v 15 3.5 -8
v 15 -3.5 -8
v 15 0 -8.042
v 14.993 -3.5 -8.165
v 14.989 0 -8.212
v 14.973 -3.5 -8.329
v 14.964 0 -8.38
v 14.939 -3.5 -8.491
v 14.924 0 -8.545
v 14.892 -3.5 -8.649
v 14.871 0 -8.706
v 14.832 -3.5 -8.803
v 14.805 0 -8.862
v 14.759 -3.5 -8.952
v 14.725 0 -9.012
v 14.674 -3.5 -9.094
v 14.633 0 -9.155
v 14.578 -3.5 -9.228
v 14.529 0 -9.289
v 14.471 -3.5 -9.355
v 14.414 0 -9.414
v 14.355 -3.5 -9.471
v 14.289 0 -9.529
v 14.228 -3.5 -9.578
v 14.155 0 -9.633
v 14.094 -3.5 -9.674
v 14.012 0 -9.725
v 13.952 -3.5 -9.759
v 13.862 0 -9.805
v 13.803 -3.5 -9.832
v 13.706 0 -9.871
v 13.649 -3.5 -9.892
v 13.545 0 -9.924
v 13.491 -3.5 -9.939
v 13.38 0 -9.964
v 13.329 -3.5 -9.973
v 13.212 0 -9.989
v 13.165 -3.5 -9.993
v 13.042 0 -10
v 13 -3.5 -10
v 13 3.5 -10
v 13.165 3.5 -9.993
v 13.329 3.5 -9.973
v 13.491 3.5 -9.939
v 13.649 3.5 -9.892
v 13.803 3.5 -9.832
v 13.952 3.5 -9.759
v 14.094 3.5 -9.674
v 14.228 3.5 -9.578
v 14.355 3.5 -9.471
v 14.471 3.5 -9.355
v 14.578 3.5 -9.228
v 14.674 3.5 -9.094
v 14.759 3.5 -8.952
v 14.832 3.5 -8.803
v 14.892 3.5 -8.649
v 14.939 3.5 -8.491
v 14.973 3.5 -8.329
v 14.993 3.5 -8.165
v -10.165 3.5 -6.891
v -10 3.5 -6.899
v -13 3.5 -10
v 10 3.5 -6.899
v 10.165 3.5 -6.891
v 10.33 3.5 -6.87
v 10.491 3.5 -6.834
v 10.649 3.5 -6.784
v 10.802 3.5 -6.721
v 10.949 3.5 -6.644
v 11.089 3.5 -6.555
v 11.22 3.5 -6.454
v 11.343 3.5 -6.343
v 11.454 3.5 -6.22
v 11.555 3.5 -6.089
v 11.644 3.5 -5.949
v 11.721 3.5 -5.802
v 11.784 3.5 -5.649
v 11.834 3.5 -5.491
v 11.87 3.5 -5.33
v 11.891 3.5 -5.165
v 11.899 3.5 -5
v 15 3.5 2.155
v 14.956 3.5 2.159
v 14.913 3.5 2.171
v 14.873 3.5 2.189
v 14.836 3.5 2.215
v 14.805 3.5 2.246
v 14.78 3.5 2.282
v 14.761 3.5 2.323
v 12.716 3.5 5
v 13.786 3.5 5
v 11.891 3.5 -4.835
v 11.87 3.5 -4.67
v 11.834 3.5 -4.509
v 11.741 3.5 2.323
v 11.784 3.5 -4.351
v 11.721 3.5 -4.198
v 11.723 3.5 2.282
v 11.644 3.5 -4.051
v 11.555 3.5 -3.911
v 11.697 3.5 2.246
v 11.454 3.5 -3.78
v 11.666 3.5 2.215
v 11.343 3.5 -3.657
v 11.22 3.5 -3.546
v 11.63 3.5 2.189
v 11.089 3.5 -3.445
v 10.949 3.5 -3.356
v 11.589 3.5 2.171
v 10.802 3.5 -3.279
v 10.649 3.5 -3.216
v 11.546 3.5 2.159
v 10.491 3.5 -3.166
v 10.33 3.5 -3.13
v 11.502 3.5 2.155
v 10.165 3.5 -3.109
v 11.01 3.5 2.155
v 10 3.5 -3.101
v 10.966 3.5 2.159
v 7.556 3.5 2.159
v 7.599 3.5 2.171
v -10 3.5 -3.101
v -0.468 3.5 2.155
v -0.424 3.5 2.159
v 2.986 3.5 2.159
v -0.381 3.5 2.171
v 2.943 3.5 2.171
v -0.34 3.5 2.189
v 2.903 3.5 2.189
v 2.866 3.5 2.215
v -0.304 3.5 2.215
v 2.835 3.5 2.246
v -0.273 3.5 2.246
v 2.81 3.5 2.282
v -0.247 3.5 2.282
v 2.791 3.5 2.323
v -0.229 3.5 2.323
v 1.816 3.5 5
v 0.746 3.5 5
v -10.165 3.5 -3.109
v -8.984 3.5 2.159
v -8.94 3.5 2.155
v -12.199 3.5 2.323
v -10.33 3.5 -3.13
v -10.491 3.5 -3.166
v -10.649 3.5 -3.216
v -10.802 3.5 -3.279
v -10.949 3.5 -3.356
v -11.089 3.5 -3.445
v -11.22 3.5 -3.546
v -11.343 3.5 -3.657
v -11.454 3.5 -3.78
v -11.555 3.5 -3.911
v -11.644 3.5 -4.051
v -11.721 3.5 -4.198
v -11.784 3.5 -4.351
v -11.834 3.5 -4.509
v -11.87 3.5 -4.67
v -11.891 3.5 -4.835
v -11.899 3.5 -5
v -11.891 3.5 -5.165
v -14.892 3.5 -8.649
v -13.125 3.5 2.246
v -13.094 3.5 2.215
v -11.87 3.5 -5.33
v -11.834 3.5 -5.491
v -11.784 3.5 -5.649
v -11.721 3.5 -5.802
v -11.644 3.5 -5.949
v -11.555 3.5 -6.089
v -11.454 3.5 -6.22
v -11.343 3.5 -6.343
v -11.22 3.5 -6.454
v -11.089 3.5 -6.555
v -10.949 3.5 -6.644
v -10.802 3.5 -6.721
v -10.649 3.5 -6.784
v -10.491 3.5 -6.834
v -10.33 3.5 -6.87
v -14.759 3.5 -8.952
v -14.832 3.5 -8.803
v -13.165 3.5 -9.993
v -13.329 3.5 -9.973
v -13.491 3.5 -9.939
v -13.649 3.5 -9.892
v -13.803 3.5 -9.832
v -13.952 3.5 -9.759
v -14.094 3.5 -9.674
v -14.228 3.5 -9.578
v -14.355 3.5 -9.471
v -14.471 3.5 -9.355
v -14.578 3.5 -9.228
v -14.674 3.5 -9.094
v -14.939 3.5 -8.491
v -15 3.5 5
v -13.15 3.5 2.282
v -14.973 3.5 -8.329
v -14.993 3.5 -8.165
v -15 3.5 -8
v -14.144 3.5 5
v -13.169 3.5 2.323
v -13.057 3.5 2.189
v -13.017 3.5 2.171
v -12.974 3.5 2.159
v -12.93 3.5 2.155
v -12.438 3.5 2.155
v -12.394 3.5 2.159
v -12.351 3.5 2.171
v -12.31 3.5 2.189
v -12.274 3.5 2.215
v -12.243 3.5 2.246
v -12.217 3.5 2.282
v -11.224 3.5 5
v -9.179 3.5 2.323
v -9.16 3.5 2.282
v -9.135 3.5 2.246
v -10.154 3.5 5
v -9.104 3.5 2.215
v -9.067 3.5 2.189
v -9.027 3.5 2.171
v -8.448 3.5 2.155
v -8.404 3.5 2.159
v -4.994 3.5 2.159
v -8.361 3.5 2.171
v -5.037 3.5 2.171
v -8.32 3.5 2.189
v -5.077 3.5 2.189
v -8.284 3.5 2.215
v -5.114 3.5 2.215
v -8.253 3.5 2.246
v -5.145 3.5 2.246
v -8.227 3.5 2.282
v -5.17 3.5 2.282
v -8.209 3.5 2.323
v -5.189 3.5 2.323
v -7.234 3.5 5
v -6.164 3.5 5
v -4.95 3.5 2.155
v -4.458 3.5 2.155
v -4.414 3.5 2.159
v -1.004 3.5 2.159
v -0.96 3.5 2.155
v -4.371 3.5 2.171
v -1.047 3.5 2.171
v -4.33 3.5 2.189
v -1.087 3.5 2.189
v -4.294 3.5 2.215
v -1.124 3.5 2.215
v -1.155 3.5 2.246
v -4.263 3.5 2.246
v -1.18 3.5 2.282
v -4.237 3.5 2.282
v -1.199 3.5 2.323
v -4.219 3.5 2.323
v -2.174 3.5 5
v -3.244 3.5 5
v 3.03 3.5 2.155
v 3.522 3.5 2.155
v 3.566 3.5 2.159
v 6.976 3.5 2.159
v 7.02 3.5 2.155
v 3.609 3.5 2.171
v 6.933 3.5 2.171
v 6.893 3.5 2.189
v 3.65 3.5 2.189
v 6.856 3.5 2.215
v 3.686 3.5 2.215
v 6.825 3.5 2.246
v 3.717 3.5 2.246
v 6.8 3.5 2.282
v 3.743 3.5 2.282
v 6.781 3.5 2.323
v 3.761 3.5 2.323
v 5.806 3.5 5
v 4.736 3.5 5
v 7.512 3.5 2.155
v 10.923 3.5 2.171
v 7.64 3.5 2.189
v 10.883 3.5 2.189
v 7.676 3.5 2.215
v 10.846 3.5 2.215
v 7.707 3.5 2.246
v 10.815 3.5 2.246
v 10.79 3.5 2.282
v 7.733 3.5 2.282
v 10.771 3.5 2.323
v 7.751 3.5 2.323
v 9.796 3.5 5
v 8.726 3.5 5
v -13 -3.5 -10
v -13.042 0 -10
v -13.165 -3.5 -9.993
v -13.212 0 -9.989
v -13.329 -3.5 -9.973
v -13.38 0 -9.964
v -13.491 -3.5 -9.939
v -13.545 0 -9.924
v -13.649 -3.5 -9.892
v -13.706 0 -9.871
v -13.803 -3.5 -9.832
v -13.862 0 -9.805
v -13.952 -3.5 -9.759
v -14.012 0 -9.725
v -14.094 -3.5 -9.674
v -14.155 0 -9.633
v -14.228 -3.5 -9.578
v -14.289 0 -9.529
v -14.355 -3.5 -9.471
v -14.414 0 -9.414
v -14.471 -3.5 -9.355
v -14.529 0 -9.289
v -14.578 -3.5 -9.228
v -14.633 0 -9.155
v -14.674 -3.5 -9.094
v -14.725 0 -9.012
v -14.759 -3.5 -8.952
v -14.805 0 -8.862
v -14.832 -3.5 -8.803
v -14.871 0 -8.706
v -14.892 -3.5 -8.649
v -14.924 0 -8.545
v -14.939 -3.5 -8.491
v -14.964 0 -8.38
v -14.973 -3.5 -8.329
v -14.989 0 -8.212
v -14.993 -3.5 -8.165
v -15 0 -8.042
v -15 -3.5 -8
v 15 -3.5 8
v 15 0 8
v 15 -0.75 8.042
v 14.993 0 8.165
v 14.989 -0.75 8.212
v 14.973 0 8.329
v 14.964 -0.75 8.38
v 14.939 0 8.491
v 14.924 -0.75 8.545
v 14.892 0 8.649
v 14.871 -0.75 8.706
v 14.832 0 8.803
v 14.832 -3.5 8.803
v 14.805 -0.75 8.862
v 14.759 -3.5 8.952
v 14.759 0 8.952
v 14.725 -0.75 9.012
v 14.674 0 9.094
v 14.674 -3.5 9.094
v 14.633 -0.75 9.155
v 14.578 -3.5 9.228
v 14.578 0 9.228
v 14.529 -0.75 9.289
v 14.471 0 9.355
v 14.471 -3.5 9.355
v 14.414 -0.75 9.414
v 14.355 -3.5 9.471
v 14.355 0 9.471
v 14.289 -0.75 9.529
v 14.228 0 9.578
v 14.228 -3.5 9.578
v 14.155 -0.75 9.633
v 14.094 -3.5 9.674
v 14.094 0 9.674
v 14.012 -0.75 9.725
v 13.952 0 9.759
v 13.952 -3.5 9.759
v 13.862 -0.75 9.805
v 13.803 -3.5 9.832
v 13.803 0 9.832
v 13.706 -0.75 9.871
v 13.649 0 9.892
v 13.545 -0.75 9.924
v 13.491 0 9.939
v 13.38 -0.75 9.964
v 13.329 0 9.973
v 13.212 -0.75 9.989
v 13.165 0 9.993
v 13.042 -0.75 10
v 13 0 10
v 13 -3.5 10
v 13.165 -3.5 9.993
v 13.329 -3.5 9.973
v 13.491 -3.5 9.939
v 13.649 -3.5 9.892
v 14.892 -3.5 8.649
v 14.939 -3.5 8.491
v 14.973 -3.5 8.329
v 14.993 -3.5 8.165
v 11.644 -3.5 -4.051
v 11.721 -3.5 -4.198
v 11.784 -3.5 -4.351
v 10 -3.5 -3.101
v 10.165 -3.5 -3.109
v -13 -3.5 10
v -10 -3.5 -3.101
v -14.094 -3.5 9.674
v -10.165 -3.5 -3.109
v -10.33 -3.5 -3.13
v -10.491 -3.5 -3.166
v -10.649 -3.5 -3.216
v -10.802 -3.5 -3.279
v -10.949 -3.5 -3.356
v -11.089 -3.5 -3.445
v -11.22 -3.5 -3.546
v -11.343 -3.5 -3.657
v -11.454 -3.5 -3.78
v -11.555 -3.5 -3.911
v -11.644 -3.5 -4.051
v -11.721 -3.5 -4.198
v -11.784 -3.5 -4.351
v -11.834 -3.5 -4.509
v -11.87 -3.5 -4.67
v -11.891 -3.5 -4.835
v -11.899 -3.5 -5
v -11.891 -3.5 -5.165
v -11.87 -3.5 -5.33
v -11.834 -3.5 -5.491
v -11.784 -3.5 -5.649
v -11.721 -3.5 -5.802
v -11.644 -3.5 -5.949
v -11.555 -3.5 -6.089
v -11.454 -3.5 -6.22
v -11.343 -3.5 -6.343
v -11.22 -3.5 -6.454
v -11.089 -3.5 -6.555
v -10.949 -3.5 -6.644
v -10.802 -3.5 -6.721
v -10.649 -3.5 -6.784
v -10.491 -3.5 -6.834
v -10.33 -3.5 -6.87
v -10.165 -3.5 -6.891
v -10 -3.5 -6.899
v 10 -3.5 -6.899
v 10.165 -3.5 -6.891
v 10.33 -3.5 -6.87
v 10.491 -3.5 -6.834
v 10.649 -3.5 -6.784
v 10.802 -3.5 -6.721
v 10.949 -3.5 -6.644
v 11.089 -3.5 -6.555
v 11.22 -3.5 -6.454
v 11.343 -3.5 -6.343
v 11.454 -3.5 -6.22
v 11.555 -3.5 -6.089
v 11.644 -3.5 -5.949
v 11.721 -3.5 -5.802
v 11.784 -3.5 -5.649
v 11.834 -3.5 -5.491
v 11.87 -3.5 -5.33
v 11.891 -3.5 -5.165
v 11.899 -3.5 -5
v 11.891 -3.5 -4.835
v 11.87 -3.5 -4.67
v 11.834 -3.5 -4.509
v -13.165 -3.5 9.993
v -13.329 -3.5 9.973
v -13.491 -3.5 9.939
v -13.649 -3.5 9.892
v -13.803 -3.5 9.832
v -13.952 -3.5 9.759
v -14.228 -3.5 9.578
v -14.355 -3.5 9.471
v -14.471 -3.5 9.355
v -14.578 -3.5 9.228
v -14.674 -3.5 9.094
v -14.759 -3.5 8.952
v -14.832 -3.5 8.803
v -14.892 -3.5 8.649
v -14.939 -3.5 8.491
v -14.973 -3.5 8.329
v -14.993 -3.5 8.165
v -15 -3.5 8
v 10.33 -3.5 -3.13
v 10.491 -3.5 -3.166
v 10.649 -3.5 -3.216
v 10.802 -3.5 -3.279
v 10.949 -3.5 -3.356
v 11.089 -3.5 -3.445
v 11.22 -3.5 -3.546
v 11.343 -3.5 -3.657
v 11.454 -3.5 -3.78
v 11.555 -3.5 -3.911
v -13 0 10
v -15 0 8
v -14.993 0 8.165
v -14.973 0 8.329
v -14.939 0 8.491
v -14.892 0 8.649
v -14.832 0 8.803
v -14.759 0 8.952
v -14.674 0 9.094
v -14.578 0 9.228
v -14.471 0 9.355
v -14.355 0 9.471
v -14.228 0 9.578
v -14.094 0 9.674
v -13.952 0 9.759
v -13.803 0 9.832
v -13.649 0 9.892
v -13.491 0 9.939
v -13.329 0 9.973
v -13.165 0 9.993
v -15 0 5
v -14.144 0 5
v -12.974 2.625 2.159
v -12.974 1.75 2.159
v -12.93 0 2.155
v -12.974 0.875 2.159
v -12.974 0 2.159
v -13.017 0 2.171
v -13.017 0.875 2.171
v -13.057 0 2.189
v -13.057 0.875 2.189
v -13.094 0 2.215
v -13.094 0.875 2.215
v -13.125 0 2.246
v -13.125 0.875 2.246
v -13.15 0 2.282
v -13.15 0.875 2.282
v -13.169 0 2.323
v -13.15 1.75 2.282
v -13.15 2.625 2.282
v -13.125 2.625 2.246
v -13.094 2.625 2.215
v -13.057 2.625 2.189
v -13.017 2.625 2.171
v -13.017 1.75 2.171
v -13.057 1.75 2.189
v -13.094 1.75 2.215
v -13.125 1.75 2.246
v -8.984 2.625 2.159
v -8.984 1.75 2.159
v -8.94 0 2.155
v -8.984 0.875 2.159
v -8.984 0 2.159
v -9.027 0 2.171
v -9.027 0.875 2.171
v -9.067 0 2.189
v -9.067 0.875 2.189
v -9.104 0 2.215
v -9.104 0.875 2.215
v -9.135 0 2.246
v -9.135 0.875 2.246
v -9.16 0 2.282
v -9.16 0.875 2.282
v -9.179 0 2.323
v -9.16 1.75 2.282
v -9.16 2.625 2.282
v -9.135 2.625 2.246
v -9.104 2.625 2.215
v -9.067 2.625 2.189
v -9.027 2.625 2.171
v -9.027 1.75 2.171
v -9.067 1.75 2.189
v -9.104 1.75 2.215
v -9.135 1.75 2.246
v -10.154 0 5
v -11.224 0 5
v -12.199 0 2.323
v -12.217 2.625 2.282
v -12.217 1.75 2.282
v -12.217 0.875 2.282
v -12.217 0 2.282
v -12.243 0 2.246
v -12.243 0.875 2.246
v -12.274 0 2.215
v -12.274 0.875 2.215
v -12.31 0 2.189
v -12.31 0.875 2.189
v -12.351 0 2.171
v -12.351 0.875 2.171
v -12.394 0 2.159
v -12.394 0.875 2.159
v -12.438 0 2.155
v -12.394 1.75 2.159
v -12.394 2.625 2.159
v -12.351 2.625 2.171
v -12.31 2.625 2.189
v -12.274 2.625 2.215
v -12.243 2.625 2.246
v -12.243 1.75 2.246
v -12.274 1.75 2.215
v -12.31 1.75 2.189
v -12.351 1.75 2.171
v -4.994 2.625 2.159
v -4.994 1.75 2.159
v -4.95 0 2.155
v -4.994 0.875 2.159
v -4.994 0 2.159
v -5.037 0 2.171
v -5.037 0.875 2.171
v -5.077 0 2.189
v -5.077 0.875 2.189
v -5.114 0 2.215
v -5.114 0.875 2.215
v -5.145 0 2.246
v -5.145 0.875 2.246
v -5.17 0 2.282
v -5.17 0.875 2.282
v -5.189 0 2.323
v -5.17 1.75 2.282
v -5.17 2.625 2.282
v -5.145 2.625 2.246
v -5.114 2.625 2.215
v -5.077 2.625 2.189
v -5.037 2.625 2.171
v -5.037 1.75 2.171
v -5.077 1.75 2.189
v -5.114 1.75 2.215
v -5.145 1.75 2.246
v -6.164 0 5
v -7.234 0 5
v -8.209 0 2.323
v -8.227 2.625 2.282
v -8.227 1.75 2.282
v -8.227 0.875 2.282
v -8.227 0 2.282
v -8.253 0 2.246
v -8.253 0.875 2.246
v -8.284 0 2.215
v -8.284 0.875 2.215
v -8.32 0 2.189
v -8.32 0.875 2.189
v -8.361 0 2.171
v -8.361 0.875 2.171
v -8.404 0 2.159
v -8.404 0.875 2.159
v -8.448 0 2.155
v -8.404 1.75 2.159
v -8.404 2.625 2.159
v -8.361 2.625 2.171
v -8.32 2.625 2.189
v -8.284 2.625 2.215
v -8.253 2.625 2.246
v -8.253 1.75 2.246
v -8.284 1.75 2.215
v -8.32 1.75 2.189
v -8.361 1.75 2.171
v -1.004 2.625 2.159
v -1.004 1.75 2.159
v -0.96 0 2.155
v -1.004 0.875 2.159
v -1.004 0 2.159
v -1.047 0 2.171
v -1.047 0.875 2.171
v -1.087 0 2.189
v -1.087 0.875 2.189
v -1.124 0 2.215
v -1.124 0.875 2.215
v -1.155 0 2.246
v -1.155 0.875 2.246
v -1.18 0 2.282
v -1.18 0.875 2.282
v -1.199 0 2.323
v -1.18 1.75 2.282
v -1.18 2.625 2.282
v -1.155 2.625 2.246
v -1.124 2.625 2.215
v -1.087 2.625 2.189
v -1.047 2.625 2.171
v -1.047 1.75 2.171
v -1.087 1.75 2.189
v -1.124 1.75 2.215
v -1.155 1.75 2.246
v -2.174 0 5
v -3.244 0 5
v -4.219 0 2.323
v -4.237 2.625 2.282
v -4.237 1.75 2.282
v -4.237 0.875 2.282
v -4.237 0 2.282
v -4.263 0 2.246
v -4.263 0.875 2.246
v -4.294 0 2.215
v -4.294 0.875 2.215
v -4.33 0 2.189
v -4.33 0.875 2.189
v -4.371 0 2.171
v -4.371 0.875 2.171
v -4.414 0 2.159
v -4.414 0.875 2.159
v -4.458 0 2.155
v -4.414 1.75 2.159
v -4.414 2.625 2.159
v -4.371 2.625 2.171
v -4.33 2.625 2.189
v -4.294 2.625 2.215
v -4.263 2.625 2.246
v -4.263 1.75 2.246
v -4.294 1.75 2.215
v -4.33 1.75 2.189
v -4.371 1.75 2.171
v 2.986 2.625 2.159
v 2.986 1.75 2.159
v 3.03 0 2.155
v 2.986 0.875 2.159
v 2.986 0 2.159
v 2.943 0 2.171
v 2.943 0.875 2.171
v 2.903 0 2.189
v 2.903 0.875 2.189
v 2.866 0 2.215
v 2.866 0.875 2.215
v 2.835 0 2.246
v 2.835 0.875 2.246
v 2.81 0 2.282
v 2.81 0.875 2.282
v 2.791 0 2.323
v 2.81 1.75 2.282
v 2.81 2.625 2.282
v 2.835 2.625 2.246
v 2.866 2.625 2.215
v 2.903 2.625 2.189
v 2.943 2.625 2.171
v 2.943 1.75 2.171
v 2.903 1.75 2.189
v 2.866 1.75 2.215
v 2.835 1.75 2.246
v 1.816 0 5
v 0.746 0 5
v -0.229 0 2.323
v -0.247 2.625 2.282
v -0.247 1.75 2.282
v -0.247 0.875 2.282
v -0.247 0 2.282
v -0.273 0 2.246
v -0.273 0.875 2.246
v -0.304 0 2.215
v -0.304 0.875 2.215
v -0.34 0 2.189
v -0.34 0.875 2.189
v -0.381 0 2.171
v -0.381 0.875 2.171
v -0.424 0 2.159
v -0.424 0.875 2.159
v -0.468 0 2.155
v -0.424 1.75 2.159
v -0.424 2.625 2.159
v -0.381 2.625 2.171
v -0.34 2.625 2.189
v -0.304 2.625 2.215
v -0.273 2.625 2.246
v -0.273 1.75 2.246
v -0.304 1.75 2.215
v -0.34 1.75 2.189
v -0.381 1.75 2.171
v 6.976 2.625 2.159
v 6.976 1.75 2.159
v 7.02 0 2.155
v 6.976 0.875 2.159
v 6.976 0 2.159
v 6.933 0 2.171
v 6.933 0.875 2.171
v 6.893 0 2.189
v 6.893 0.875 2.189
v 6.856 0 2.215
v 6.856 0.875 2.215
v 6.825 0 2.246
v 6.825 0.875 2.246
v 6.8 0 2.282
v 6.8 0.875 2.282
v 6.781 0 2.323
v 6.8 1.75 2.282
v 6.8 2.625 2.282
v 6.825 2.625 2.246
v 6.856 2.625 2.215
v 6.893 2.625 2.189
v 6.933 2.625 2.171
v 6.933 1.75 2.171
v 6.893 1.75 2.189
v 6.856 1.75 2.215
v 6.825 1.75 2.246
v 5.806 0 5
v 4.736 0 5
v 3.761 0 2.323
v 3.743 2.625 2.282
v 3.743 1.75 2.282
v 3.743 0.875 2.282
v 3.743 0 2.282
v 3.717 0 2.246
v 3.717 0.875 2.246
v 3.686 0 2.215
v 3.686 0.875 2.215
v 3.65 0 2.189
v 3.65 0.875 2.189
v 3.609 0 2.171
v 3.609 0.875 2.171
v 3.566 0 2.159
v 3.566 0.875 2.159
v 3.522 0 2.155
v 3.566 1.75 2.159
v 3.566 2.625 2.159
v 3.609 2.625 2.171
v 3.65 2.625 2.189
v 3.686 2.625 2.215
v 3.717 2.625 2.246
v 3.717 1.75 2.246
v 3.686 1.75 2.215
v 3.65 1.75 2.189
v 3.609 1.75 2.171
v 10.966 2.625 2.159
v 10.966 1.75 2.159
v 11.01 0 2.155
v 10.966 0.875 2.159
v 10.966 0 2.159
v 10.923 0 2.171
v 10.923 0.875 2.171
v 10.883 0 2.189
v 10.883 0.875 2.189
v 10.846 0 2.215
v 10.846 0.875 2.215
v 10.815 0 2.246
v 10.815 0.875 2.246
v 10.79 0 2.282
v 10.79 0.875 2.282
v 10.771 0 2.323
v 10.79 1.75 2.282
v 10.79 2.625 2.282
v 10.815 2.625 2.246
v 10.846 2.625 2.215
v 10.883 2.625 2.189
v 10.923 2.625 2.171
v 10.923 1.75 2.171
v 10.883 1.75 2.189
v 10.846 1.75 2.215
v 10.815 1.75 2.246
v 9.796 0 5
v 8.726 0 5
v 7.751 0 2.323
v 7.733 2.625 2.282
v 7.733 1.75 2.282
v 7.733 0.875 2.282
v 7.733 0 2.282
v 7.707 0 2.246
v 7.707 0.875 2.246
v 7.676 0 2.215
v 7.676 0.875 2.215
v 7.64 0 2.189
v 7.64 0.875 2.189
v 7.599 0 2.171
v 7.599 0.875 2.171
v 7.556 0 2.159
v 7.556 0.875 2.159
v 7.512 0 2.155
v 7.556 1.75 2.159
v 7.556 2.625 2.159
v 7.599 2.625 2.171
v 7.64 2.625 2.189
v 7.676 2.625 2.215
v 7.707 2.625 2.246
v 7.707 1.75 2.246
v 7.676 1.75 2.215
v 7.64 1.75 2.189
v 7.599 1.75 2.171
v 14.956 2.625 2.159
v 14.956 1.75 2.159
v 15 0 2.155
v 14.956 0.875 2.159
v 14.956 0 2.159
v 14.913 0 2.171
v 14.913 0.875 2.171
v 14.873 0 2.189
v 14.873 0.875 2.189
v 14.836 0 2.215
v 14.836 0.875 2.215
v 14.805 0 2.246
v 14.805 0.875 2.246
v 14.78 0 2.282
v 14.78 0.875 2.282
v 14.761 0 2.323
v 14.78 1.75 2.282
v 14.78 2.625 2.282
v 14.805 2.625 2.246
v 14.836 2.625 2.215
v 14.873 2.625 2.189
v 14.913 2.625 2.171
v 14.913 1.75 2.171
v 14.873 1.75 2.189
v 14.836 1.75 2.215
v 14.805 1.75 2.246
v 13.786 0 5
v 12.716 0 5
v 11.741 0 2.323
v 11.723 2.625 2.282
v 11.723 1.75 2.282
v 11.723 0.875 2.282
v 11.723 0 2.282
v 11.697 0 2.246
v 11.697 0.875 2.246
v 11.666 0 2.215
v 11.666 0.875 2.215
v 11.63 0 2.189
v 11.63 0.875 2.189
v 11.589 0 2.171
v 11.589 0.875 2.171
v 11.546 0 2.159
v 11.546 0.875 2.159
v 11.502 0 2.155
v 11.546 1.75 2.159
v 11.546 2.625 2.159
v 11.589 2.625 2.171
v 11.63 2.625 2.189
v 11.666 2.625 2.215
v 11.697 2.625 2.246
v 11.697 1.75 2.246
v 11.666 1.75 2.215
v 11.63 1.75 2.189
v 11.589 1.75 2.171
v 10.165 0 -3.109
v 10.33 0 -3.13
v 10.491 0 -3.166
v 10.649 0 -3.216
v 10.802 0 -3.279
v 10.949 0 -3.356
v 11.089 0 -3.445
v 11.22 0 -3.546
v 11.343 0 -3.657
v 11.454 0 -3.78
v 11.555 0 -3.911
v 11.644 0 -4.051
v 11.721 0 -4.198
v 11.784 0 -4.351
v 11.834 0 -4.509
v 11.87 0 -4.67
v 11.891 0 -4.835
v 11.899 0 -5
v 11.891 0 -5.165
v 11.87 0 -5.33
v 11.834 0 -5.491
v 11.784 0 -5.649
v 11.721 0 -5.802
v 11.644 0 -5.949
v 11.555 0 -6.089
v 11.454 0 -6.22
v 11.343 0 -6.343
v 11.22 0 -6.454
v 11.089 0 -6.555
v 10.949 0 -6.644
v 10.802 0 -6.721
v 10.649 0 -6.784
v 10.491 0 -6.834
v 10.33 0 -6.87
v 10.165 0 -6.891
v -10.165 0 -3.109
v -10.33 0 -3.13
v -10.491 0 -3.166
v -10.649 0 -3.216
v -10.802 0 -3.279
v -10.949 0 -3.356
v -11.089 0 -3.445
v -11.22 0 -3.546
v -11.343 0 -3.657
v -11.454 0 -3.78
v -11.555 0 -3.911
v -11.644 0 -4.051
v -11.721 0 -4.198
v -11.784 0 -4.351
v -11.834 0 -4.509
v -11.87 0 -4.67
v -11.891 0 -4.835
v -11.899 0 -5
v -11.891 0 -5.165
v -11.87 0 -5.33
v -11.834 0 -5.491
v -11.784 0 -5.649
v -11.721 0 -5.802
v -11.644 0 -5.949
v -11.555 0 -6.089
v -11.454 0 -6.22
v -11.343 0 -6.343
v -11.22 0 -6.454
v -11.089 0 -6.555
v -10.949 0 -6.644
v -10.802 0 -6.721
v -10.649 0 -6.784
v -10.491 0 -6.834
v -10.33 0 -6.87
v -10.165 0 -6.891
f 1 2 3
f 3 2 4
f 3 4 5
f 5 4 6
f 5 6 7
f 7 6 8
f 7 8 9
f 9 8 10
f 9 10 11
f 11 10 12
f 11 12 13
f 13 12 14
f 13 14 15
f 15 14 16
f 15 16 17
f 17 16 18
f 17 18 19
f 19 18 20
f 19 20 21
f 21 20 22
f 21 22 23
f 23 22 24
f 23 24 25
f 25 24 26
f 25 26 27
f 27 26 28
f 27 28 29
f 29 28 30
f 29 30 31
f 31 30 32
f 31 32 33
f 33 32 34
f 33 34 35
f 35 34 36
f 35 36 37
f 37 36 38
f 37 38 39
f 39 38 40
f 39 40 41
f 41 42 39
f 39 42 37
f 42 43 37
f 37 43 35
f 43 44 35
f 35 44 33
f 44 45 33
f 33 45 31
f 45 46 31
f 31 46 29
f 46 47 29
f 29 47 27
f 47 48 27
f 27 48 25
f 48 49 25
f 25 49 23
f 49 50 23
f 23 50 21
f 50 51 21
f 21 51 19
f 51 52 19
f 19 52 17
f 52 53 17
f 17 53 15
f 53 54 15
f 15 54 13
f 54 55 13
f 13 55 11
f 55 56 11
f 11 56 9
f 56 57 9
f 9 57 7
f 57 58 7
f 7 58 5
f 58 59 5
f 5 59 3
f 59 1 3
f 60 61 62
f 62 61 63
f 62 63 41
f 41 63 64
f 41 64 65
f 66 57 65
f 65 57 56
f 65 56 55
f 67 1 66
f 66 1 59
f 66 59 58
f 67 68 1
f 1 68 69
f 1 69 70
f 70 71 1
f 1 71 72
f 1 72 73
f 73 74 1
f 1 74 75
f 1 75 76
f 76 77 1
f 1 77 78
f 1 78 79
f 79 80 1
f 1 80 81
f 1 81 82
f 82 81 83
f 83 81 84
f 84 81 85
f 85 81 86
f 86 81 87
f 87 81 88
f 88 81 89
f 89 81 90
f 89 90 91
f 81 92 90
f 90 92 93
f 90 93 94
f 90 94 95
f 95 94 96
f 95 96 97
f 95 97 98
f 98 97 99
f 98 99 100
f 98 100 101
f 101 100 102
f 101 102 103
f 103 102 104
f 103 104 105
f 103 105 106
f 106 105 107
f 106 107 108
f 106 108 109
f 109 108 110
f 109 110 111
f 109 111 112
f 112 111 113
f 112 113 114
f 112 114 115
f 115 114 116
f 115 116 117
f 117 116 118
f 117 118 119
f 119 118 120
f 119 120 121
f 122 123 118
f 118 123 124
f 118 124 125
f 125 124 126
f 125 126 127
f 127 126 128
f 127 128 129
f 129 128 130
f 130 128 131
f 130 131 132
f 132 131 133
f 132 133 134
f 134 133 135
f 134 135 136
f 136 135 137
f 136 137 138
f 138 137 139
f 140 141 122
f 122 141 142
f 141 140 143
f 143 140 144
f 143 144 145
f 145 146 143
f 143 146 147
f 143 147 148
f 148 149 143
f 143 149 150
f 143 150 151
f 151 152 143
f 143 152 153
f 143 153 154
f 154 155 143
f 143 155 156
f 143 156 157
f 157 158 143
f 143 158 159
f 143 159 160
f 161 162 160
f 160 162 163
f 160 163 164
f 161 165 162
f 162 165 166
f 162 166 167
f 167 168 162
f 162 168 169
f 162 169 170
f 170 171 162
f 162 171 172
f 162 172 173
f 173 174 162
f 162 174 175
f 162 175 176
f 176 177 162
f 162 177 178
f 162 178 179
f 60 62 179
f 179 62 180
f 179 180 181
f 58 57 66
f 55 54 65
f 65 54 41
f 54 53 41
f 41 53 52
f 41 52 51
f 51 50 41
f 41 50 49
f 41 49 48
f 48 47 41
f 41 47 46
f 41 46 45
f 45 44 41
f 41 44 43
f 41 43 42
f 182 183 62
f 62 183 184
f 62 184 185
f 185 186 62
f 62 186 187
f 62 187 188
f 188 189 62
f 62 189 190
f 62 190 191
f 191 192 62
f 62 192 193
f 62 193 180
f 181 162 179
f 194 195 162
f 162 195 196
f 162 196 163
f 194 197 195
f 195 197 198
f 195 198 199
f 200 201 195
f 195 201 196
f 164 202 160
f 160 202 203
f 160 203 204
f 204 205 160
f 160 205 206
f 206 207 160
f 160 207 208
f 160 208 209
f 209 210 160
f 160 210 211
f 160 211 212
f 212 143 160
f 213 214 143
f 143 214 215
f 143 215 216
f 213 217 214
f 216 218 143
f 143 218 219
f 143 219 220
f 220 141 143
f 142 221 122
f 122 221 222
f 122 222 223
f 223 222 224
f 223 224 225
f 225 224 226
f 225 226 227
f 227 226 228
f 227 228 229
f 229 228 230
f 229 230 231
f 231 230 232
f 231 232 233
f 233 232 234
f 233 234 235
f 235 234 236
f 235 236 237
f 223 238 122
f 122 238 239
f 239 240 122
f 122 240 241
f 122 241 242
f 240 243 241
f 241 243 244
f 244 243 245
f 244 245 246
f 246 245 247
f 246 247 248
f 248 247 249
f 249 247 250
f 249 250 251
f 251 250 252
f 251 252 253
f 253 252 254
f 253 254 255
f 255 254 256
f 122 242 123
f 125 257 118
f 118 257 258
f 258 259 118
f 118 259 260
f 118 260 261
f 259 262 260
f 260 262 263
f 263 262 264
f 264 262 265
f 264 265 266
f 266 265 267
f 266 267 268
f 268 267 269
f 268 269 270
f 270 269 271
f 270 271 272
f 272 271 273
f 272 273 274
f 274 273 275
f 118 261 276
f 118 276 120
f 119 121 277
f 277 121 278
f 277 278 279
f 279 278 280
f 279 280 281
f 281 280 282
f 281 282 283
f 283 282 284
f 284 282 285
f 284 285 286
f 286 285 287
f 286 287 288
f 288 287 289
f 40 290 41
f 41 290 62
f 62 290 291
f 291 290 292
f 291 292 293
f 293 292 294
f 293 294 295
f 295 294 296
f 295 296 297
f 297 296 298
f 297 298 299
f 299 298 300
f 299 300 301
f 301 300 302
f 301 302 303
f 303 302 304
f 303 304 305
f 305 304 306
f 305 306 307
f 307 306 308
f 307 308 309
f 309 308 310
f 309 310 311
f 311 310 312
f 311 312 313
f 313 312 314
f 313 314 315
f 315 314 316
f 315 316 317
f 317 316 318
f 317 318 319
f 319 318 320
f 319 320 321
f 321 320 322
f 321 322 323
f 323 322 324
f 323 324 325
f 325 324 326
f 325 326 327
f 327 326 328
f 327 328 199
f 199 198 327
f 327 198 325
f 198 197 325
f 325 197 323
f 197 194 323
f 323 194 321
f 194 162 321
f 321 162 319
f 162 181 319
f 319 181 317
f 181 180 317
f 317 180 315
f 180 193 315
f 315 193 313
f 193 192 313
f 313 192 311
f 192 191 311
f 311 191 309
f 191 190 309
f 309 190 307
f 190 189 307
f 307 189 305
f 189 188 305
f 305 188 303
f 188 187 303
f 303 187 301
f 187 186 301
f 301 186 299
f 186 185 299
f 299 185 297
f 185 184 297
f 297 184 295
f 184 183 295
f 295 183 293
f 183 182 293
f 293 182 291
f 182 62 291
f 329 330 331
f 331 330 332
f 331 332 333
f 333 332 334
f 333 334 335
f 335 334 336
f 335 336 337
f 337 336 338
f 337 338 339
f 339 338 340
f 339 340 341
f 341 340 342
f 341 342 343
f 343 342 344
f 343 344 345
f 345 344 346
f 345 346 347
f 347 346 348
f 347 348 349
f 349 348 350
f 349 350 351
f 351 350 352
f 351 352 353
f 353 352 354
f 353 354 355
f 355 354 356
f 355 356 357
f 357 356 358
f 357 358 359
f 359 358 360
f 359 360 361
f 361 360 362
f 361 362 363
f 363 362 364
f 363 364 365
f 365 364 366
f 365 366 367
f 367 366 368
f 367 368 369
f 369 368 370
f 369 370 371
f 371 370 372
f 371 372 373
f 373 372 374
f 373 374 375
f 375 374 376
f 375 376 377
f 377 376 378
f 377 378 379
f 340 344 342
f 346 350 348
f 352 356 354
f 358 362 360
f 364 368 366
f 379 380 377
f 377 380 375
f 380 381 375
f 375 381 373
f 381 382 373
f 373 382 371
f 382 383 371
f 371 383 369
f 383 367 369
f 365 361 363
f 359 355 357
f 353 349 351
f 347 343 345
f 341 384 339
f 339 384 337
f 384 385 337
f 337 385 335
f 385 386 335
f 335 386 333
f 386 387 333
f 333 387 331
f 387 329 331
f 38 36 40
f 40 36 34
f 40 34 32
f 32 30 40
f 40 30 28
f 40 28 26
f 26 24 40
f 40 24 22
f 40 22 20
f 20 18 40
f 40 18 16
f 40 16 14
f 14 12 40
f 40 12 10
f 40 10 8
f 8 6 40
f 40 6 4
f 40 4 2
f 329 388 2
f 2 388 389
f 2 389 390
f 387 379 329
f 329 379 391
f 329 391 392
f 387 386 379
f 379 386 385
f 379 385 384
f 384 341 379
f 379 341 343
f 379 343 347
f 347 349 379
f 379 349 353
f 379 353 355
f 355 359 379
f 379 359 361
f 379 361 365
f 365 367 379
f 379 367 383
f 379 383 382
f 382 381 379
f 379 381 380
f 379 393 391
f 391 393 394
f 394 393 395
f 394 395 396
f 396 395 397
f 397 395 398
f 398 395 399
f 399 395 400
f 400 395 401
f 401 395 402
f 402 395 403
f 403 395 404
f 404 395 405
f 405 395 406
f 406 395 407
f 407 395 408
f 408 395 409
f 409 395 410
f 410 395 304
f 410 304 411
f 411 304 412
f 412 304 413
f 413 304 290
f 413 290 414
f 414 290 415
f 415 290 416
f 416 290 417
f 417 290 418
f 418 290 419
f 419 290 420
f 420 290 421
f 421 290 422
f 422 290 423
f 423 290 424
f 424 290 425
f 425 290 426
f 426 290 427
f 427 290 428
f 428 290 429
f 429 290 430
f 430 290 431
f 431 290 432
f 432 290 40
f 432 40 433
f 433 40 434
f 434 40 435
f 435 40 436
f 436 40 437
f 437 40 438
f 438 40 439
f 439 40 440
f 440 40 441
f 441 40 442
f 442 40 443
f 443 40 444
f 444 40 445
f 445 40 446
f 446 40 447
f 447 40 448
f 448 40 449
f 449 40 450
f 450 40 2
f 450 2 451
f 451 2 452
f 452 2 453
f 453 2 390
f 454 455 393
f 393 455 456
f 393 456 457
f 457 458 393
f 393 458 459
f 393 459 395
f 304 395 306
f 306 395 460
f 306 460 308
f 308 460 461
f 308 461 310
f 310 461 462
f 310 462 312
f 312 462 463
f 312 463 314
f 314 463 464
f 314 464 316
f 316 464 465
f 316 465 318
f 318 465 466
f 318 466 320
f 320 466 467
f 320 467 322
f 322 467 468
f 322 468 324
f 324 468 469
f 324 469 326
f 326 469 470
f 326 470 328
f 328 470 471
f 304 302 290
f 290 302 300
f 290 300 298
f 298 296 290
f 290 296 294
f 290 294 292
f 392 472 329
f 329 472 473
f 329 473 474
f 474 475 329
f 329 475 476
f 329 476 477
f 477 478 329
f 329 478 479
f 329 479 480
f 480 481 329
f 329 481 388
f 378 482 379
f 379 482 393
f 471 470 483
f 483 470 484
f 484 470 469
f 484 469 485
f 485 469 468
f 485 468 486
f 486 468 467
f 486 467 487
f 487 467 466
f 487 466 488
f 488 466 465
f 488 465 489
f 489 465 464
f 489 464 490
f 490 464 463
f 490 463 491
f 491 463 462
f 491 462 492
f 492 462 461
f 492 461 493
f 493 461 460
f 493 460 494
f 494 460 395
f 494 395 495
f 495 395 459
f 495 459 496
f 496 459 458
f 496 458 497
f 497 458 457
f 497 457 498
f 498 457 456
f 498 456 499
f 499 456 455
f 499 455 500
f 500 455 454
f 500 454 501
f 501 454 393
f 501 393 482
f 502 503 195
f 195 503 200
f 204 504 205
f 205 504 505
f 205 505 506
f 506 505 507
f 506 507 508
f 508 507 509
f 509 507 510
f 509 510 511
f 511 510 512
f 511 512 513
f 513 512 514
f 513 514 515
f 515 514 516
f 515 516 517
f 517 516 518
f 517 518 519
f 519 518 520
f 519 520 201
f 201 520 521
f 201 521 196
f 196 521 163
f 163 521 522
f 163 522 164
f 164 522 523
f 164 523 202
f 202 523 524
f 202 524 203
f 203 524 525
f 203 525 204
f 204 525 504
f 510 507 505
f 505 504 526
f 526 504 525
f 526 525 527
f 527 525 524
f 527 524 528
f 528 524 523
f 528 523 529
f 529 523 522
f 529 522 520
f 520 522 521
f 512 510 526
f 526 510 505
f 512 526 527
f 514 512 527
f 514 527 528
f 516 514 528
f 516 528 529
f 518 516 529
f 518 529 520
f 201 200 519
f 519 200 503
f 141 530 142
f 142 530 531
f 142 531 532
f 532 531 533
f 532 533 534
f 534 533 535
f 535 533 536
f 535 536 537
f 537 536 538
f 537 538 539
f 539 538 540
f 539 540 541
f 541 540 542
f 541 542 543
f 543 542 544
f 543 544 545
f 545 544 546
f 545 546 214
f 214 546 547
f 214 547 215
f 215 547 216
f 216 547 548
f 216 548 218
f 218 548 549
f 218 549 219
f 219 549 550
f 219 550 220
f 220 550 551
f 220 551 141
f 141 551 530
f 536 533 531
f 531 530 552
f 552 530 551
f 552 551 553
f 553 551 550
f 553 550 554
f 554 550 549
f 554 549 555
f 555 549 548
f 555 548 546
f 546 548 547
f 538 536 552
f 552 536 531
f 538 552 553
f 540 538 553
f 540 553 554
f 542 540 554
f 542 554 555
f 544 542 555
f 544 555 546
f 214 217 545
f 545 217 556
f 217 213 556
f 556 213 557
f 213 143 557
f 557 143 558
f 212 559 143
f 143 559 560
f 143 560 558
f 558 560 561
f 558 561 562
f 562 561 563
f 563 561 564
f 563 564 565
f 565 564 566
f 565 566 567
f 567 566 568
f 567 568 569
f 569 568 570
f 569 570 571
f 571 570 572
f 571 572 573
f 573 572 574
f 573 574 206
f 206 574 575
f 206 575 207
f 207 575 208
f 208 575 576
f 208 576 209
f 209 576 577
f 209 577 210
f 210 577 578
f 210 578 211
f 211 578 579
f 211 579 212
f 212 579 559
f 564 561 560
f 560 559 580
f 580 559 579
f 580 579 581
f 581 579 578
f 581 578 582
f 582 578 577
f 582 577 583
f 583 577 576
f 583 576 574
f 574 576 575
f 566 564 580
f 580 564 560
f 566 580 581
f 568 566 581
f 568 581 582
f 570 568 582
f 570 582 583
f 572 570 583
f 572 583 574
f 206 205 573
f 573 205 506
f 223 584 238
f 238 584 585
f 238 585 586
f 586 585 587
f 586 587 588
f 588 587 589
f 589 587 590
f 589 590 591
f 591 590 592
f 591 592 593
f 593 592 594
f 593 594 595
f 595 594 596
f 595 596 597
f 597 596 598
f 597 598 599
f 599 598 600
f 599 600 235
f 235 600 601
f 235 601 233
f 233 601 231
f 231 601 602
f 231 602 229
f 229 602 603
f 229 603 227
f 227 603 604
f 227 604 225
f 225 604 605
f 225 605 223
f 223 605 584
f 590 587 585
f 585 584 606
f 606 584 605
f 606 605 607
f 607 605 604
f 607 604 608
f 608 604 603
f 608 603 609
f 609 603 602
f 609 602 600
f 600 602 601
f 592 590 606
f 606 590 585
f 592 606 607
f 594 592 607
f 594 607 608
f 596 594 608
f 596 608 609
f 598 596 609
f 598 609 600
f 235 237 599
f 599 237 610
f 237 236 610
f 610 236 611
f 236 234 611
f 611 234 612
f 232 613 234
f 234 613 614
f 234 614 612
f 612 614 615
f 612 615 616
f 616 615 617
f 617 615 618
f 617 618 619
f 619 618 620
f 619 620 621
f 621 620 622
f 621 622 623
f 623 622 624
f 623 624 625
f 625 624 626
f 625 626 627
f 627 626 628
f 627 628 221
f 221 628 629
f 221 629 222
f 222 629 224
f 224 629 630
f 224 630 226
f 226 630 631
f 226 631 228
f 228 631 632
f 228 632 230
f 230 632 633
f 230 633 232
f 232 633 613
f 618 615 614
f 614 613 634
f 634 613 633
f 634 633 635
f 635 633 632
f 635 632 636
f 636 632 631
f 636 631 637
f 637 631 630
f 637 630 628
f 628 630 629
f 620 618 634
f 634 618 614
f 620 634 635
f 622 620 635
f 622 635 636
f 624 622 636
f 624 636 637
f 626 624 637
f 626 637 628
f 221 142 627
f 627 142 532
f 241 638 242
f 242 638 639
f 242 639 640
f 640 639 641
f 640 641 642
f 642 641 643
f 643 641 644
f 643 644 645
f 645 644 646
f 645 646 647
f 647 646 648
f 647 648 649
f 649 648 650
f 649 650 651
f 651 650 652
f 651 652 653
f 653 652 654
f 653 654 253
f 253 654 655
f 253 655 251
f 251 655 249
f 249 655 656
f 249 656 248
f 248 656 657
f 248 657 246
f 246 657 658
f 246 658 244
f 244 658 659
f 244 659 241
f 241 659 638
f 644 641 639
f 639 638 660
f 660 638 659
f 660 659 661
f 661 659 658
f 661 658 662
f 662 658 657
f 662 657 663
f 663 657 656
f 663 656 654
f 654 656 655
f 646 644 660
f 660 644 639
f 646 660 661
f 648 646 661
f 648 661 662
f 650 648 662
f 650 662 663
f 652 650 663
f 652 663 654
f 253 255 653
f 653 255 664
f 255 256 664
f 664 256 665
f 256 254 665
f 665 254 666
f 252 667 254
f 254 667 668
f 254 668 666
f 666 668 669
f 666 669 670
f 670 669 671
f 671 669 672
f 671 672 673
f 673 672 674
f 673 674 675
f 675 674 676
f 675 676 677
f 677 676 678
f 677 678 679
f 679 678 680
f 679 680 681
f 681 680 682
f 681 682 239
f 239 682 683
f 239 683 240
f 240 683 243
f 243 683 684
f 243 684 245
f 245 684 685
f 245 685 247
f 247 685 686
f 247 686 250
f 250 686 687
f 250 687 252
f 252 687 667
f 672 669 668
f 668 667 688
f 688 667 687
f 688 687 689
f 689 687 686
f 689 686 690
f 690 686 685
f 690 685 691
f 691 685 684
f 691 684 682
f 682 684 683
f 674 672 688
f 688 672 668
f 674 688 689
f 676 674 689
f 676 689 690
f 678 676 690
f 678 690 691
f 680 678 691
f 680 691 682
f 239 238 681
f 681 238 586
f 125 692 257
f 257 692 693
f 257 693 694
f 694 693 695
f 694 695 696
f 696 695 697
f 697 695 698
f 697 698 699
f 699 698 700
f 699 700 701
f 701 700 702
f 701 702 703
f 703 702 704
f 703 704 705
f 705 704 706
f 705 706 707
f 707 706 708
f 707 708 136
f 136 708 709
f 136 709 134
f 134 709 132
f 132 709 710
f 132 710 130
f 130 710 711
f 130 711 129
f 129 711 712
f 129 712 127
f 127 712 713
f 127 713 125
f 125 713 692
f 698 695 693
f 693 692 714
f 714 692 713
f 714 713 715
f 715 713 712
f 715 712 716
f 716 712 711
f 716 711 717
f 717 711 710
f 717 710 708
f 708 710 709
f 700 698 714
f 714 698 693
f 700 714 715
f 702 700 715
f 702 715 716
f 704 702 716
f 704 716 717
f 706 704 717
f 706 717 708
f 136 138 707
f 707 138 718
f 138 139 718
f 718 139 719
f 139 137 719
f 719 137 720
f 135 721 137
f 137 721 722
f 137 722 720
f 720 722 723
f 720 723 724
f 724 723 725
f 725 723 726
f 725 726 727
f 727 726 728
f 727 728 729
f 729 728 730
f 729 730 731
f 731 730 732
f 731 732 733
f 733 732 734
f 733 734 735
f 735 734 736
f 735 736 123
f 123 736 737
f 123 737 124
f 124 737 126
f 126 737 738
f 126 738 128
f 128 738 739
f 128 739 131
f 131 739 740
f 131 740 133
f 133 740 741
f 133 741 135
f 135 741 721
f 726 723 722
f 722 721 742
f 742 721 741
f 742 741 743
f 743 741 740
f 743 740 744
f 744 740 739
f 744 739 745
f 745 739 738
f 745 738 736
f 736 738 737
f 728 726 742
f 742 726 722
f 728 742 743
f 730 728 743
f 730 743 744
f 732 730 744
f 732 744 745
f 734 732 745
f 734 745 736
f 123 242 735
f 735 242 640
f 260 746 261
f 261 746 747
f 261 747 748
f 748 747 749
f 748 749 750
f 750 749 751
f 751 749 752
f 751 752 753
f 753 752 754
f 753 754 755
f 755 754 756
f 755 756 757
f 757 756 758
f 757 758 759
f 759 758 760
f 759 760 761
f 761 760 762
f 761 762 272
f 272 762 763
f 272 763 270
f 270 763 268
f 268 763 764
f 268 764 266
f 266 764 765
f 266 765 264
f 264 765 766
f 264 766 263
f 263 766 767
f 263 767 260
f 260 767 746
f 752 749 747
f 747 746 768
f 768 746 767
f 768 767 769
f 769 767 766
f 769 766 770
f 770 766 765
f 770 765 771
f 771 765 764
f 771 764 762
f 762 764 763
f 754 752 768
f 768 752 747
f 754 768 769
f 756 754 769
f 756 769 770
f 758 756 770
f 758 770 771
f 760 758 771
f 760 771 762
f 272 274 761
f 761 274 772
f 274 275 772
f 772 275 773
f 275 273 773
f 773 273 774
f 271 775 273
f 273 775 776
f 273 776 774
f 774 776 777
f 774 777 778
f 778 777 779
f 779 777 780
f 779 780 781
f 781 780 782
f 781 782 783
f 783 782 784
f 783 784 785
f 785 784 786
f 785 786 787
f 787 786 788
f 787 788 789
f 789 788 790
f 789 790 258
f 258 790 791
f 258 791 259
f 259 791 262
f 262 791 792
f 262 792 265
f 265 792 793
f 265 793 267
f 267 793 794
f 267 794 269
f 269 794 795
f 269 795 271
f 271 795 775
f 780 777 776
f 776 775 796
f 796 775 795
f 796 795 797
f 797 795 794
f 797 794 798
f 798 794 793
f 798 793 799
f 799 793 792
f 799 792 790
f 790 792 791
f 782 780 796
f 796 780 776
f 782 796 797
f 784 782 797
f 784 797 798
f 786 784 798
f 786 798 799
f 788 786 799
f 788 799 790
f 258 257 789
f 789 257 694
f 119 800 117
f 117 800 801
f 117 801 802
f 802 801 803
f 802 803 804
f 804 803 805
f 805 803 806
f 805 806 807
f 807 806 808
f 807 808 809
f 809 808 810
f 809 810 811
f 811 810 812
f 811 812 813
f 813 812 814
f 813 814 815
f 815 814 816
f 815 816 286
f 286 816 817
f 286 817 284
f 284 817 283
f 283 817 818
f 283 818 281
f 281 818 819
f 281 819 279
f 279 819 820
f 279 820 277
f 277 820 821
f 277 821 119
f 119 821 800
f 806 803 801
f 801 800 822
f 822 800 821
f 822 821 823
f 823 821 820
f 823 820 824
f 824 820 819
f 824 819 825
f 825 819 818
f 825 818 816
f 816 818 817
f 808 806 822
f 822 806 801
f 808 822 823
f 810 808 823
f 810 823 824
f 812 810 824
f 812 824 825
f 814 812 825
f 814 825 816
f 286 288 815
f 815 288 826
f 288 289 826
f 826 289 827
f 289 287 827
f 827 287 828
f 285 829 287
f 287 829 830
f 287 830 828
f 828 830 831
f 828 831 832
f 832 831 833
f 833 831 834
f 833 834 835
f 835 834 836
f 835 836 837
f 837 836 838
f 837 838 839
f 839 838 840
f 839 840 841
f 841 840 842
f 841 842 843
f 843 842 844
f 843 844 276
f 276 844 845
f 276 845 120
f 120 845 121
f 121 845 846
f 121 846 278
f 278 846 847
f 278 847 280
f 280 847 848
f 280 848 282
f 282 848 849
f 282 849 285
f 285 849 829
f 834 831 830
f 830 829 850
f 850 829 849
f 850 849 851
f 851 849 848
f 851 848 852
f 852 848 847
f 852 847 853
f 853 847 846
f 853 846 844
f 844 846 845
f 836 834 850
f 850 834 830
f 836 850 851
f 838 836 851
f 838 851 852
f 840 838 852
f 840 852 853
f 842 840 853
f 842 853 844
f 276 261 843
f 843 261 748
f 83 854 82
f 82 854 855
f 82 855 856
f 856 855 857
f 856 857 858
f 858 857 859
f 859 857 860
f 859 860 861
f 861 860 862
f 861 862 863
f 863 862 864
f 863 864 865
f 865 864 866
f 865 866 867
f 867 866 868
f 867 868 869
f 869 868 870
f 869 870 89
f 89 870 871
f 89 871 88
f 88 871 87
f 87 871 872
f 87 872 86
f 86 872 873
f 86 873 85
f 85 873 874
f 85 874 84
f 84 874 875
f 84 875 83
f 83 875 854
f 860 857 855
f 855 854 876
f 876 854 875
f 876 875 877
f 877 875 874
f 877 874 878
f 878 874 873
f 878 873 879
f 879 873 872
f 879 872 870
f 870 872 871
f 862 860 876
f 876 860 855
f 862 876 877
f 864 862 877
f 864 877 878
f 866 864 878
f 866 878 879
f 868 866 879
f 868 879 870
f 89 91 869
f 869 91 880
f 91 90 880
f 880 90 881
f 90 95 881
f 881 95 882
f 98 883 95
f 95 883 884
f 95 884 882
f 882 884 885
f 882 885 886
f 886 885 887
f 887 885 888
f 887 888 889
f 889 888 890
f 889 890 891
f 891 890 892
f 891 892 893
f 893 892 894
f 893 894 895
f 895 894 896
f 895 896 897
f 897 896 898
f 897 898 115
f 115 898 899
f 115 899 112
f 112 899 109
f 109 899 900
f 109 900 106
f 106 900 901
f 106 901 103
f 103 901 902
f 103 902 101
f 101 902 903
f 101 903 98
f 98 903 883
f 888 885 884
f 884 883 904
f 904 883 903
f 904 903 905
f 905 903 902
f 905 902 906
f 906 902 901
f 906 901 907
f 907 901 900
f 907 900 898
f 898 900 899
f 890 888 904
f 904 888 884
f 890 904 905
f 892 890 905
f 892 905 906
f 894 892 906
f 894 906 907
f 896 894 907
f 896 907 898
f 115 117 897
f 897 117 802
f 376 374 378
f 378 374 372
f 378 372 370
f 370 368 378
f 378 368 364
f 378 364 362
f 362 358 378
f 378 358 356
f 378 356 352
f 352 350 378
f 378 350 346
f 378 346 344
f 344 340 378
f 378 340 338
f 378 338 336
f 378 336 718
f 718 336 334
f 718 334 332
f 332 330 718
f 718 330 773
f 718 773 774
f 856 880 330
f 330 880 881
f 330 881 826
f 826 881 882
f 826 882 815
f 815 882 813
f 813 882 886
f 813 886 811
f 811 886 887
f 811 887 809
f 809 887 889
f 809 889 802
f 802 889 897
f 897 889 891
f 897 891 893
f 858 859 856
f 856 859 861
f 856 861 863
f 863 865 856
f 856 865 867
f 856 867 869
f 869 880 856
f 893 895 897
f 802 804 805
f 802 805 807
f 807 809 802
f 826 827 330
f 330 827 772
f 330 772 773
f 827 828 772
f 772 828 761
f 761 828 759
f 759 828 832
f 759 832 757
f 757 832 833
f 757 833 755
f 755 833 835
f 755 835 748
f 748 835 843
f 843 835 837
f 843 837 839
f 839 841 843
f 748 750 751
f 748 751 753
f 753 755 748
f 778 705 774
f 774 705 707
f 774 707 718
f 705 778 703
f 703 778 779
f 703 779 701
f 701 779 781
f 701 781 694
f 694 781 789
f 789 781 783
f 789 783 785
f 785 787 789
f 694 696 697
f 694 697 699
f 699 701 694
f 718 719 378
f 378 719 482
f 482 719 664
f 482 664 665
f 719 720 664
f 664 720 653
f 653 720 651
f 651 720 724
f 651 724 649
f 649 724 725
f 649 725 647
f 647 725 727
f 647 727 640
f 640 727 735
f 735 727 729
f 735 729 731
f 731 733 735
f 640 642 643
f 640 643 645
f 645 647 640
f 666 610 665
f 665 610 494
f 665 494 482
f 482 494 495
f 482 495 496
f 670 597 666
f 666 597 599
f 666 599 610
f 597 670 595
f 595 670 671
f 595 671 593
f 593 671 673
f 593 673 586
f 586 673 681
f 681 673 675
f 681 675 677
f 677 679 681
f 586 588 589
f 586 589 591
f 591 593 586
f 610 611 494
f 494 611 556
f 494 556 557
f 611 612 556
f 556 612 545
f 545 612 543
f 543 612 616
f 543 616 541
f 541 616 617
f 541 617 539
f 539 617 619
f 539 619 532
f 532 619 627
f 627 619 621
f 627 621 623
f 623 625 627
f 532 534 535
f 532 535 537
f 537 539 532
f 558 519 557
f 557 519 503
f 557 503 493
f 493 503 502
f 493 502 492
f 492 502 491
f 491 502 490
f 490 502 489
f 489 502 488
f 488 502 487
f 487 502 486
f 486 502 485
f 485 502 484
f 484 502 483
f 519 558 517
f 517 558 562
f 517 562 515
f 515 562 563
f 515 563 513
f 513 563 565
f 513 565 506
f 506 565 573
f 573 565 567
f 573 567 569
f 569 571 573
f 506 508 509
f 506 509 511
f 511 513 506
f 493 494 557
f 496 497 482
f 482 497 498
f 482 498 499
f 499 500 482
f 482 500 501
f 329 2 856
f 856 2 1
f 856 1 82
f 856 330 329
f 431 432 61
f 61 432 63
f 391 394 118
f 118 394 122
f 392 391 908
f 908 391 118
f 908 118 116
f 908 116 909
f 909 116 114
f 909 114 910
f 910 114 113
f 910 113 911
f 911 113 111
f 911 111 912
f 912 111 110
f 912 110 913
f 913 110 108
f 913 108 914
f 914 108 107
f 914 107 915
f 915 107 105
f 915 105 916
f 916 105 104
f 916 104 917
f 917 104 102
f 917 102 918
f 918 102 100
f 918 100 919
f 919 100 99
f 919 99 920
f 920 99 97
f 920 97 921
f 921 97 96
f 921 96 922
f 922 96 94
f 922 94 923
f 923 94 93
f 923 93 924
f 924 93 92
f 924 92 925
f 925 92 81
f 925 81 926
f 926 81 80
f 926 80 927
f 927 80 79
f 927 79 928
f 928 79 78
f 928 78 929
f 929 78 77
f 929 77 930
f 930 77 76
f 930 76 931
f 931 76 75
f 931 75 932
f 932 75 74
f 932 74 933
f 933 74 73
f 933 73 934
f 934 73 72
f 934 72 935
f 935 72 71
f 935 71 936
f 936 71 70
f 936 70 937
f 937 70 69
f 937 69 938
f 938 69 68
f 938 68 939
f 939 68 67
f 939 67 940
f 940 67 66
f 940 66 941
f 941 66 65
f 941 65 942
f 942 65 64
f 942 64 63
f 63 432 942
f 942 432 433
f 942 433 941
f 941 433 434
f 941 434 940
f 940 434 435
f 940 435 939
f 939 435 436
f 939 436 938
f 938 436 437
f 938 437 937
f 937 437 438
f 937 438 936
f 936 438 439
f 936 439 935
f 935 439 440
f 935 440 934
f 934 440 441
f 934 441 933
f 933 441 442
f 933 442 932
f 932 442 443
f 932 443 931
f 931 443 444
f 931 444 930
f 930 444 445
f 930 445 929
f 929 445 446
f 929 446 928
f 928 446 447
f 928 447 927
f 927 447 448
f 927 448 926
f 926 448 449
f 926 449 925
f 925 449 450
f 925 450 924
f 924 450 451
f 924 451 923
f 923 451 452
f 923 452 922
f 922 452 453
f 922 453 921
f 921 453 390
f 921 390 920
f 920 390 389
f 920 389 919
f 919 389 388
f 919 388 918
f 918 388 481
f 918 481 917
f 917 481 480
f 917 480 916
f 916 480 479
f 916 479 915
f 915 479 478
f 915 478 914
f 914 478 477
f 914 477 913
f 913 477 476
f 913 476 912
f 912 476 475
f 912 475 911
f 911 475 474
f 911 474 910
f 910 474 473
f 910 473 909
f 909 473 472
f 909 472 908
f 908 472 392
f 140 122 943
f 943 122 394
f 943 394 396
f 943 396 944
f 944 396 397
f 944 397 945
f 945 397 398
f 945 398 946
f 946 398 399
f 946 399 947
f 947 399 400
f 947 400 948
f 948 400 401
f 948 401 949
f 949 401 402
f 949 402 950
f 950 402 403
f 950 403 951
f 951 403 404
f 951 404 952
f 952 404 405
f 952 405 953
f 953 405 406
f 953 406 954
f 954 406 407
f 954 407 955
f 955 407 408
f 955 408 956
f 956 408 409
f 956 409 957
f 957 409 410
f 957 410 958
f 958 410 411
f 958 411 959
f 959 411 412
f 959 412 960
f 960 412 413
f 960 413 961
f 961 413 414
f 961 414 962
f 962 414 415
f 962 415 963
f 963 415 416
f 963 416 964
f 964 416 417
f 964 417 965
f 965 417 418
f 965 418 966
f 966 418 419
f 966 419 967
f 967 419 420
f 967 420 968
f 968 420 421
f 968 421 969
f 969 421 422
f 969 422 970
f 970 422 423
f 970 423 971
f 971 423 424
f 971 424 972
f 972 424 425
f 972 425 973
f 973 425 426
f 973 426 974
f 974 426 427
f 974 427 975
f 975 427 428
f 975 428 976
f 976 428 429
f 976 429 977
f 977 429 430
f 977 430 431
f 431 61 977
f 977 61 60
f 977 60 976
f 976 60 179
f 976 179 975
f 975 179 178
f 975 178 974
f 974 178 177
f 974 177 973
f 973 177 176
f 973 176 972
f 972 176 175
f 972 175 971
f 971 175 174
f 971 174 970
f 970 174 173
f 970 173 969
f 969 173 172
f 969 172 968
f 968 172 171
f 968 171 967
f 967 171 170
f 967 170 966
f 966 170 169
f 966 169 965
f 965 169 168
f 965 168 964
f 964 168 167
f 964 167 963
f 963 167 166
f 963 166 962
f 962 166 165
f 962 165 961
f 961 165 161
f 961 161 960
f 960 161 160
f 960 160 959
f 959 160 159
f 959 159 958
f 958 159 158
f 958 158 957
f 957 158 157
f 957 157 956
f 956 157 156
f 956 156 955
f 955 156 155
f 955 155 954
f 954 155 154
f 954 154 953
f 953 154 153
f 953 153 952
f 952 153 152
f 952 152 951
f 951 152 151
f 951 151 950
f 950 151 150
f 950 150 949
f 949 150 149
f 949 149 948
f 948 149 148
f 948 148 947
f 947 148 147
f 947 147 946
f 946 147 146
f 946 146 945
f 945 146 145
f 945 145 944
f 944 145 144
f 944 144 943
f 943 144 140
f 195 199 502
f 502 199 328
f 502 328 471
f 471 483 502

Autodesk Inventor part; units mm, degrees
ref_plane "YZ Plane" through (0, 0, 0) normal (1, 0, 0) x (0, 1, 0)
ref_plane "XZ Plane" through (0, 0, 0) normal (0, 1, 0) x (-1, 0, 0)
ref_plane "XY Plane" through (0, 0, 0) normal (0, 0, 1) x (1, 0, 0)
sketch "Sketch1" plane through (0, 0, 0) normal (0, 1, 0) x (-1, 0, 0)
  line L0 (-15, 10) -> (15, 10)
  line L1 (15, 10) -> (15, -10)
  line L2 (15, -10) -> (-15, -10)
  line L3 (-15, -10) -> (-15, 10)
  line L4 (-15, 10) -> (15, -10) construction
  line L5 (15, 10) -> (-15, -10) construction
  circle A0 centre (10, -5) radius 1.8986
  circle A1 centre (-10, -5) radius 1.8986
  line L6 (10, -3.1013) -> (-10, -3.1013)
  line L7 (10, -6.8986) -> (-10, -6.8986)
  point P0 (0, 0)
  point P1 (0, 0)
  point P2 (10, 0)
  point P3 (0, 0)
  dimension "d0" = 30
  dimension "d1" = 20
  dimension "d8" = 5
  dimension "d61" = 3.7973
  dimension "d62" = 3.7973
  dimension "d63" = 5
  dimension "d64" = 5
  dimension "d67" = 5
extrude "Extrusion1" add sketch "Sketch1" along normal mid plane 7
sketch "Sketch5" plane through (0, 3.5, 0) normal (0, -1, 0) x (1, 0, 0)
  arc A0 (10.771, 2.3227) -> (11.0102, 2.1552) centre (11.0102, 2.4098) ccw
  line L0 (11.0102, 2.1552) -> (11.5022, 2.1552)
  arc A1 (11.5022, 2.1552) -> (11.7414, 2.3227) centre (11.5022, 2.4098) ccw
  line L1 (11.7414, 2.3227) -> (12.7159, 5)
  line L2 (13.7863, 5) -> (12.7159, 5)
  line L3 (13.7863, 5) -> (14.7608, 2.3227)
  arc A2 (14.7608, 2.3227) -> (15, 2.1552) centre (15, 2.4098) ccw
  line L4 (11.5022, 2.4098) -> (15, 2.4098) construction
  line L5 (15, 10) -> (-15, 10) construction
  line L6 (15, -10) -> (15, 10) construction
  line L7 (10.771, 2.3227) -> (10.771, 10)
  line L8 (10.771, 10) -> (15, 10)
  line L9 (15, 10) -> (15, 2.1552)
  dimension "d49" = 0.2546
  dimension "d50" = 0.2546
  dimension "d51" = 0.4921
  dimension "d52" = 1.0704
  dimension "d53" = 2.8448
  dimension "d54" = 3.0194
  dimension "d55" = 0.2546
  dimension "d66" = 5
extrude "Extrusion4" cut sketch "Sketch5" along normal blind 3.5
pattern_linear "Rectangular Pattern1" count 10 spacing 3.99 along (-1, 0, 0) of "Extrusion4"
fillet "Fillet1" radius 2 4 edges at (-15, -1.75, 10) (15, -1.75, 10) (-15, 0, -10) (15, 0, -10)
equation "\"d62\" = d61"
equation "\"d67\" = d64"
equation "\"d55\" = d50"
properties part number "RackTest"
